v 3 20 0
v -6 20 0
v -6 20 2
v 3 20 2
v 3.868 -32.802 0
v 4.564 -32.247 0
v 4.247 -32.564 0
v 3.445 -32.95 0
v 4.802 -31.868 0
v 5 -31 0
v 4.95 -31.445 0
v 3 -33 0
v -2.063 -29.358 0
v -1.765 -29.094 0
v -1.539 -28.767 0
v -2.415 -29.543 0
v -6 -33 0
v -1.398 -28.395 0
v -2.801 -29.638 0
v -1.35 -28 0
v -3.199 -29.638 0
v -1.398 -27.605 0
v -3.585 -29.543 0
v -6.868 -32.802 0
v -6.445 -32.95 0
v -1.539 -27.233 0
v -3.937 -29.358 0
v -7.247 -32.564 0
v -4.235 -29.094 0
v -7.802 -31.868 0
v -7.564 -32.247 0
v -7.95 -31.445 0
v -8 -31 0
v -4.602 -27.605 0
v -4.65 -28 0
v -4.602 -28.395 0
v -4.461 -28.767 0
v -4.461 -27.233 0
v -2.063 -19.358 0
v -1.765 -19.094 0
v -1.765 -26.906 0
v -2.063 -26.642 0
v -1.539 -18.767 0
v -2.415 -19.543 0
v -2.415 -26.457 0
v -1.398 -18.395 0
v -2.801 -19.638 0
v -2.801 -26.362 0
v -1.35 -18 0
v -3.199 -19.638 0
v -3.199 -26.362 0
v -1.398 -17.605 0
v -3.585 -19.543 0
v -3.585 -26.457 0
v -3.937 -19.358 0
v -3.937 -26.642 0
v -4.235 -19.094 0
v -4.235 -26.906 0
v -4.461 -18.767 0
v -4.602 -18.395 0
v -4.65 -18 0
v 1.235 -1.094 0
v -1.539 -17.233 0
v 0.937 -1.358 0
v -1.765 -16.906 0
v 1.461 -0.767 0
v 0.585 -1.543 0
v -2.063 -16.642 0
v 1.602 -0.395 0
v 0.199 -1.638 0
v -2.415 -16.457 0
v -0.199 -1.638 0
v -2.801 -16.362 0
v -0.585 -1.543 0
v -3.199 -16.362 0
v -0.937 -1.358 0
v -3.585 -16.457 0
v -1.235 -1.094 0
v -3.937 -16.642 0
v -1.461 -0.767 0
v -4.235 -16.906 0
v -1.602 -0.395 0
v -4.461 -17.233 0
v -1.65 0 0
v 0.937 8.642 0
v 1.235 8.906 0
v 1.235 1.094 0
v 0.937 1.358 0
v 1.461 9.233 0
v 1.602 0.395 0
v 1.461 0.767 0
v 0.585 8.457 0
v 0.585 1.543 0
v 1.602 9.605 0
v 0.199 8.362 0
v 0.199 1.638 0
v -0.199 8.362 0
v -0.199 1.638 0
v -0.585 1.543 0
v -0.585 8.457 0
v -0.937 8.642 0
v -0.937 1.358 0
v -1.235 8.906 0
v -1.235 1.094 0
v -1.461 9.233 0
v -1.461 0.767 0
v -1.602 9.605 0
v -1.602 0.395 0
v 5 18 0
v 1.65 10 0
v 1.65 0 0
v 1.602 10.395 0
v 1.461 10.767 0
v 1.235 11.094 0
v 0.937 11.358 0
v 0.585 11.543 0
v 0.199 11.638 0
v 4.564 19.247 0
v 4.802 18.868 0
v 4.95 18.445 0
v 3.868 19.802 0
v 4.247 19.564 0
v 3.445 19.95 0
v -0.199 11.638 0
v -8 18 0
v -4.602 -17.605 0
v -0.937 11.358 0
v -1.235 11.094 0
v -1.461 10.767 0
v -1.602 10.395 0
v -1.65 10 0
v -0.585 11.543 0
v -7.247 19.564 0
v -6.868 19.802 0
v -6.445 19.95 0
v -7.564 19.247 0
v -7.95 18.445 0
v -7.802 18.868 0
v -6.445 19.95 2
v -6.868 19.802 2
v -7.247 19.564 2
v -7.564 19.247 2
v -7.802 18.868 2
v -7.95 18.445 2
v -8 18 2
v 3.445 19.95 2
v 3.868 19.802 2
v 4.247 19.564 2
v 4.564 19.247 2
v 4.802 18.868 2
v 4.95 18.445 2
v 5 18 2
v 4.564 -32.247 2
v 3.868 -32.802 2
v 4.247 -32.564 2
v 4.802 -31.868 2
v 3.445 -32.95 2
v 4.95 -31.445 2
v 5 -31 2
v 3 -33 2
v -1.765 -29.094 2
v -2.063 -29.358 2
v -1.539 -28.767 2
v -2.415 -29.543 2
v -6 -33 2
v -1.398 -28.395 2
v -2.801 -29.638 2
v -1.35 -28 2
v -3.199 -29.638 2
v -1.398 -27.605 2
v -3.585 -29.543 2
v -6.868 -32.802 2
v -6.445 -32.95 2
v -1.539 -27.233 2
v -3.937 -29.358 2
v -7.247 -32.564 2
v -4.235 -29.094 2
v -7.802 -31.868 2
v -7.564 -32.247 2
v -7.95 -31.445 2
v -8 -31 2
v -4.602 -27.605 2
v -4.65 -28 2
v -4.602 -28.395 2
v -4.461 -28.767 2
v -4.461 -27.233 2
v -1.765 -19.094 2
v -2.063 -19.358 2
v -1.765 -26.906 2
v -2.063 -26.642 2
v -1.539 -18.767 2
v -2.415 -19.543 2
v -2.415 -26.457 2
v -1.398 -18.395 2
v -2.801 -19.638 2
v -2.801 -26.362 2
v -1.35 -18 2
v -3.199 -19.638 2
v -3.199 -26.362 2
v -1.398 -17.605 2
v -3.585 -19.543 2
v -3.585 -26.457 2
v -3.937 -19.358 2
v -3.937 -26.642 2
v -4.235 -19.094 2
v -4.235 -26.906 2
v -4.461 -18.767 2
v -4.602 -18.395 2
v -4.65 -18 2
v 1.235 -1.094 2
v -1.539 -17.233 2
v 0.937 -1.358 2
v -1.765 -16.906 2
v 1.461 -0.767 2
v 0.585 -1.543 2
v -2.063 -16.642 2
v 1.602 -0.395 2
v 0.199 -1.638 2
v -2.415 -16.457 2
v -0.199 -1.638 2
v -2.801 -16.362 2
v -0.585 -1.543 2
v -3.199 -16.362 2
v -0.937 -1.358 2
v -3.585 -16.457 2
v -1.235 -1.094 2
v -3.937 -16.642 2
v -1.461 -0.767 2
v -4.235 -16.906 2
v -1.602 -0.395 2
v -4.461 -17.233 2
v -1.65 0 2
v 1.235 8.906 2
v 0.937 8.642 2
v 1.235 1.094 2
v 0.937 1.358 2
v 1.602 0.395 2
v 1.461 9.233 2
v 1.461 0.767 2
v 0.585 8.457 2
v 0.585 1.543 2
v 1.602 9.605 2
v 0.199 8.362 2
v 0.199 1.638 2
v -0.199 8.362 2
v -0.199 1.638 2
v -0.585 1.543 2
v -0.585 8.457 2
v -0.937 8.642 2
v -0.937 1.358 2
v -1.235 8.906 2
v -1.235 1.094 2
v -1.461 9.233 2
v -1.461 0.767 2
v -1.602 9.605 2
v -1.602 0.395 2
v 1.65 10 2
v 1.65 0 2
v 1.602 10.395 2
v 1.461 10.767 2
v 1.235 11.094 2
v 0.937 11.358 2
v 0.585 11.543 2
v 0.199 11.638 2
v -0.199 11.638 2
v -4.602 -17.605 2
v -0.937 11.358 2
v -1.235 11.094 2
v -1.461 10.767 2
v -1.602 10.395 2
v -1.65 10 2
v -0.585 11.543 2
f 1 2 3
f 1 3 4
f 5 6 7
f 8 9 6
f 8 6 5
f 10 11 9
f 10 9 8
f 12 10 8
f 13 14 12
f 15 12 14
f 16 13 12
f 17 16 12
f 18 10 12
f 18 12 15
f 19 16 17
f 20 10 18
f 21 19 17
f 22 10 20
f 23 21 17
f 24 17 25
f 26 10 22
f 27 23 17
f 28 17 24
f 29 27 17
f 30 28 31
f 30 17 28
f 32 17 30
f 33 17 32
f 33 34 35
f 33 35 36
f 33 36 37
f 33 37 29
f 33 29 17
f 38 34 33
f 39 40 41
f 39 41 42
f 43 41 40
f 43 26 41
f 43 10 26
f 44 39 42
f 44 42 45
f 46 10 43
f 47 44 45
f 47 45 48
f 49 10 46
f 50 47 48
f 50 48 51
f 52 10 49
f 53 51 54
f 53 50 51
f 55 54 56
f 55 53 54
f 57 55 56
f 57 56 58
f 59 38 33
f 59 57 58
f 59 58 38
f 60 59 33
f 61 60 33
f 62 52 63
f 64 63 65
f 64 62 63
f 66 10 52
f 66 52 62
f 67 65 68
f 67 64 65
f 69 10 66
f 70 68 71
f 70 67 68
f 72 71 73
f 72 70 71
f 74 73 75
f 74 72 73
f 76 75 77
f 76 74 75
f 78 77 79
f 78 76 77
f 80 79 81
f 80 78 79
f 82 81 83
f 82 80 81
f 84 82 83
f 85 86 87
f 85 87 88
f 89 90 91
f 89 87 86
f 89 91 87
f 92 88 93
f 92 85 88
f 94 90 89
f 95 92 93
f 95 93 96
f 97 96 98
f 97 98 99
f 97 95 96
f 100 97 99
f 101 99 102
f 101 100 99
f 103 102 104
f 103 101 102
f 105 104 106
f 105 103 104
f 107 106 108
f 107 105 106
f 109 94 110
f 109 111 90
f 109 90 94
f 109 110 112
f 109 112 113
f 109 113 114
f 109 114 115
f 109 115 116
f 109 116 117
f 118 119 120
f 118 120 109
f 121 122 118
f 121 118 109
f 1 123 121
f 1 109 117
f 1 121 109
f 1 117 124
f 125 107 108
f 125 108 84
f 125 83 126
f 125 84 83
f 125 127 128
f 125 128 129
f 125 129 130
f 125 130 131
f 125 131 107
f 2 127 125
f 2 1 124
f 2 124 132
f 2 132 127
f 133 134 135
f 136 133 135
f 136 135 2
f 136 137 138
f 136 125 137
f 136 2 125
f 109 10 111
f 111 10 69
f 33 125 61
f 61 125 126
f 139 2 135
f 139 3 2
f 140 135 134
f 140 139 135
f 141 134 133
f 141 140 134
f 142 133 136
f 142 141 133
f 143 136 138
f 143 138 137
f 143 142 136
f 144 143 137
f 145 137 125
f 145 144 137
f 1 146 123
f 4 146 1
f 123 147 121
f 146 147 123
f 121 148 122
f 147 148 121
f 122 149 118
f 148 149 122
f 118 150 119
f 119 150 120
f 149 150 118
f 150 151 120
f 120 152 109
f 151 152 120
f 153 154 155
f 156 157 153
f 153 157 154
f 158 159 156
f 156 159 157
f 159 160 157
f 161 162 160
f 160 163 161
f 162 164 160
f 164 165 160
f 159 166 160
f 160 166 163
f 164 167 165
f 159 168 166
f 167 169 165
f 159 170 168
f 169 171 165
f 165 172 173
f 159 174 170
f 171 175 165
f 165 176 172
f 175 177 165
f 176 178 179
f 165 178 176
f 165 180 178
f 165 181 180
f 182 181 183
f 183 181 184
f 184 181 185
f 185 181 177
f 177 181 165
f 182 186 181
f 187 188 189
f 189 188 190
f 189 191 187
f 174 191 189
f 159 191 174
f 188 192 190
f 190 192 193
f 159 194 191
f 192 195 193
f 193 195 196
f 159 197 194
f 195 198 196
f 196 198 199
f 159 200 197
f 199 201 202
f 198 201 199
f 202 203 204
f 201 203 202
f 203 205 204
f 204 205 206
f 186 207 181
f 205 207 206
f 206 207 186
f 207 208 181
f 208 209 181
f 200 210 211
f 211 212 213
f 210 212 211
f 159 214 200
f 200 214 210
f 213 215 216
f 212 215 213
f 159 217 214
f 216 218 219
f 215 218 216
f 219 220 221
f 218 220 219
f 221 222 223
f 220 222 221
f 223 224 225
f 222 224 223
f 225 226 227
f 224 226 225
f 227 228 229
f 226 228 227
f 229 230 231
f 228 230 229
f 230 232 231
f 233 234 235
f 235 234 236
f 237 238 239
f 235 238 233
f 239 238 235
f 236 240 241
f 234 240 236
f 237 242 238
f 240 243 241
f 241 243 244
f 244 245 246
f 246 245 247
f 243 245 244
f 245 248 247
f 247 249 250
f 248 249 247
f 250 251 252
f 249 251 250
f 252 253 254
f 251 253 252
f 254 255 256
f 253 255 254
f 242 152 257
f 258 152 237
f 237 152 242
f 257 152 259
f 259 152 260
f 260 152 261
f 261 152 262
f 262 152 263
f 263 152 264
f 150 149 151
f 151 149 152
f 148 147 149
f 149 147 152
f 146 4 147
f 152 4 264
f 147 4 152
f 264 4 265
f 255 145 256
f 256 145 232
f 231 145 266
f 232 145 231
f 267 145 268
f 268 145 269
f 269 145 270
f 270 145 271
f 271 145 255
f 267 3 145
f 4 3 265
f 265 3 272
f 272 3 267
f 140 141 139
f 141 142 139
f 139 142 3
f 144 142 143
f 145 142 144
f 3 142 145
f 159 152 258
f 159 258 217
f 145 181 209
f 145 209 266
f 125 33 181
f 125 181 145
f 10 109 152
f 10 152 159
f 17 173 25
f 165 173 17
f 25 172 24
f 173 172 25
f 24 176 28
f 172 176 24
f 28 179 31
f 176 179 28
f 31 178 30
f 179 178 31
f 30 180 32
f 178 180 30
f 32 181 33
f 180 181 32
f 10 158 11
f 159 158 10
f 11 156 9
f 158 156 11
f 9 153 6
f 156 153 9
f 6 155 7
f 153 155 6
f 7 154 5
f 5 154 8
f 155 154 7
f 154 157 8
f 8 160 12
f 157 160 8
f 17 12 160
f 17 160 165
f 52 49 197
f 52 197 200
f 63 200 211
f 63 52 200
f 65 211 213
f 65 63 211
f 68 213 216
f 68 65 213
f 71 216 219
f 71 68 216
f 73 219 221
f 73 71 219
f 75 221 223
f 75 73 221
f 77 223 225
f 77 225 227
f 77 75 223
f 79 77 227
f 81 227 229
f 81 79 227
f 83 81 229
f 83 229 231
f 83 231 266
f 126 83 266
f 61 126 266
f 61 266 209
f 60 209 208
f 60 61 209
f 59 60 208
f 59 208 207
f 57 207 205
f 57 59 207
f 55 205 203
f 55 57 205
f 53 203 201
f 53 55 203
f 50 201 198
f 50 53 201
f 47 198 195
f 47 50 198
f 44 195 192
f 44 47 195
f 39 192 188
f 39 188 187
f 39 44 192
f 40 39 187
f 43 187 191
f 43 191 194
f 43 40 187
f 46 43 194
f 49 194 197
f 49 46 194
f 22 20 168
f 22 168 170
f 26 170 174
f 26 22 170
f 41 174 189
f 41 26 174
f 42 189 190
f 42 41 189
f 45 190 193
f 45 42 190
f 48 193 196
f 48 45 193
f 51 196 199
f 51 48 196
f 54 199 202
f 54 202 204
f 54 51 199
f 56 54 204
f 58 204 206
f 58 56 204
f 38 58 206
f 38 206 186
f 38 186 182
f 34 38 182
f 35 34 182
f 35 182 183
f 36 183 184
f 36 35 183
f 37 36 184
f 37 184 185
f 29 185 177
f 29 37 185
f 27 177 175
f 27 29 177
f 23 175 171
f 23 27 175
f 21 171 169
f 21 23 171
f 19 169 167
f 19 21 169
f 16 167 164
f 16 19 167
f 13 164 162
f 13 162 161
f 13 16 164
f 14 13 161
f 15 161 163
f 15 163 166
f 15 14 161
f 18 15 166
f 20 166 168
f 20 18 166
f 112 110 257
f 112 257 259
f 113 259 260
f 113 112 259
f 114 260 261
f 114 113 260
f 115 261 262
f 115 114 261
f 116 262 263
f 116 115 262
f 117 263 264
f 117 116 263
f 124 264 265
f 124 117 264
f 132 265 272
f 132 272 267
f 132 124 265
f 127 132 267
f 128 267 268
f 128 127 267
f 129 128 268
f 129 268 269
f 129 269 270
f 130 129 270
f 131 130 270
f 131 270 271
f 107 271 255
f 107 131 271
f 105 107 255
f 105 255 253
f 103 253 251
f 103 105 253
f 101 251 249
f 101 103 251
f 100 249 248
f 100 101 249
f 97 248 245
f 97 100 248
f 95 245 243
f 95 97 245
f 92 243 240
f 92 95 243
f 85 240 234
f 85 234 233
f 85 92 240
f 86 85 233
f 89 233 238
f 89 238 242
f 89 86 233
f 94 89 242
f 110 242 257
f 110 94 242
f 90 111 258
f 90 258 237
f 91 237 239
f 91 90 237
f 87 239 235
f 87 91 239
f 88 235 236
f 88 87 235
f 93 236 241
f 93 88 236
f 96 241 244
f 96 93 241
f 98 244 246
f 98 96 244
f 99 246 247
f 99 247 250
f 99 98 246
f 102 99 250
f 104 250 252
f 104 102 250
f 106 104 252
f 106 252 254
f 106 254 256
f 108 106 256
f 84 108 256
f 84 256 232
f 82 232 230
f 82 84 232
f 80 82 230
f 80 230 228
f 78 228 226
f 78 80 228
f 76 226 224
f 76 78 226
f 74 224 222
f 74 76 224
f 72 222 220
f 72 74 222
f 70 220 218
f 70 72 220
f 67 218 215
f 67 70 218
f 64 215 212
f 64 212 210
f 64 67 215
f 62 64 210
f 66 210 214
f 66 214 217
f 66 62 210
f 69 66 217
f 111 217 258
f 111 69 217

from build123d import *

# Parameters (mm, degrees)
SKETCH_W  = 13
SKETCH_H  = 53
SKETCH_R  = 1.65
PAD_DEPTH = 2
FILLET_R  = 2


with BuildPart() as part:
    # Sketch → Pad (new body)
    with BuildSketch(Plane.XY):
        with Locations((-1.5, -6.5)):
            Rectangle(SKETCH_W, SKETCH_H)
        Circle(SKETCH_R, mode=Mode.SUBTRACT)
        with Locations((0, 10)):
            Circle(SKETCH_R, mode=Mode.SUBTRACT)
        with Locations((-3, -28)):
            Circle(SKETCH_R, mode=Mode.SUBTRACT)
        with Locations((-3, -18)):
            Circle(SKETCH_R, mode=Mode.SUBTRACT)
    extrude(amount=PAD_DEPTH)

    # Fillet
    fillet_edges = [part.edges().sort_by_distance(p)[0] for p in [
        (5, -33, 1),
        (-8, -33, 1),
        (5, 20, 1),
        (-8, 20, 1),
    ]]
    fillet(fillet_edges, radius=FILLET_R)


solid = part.part
